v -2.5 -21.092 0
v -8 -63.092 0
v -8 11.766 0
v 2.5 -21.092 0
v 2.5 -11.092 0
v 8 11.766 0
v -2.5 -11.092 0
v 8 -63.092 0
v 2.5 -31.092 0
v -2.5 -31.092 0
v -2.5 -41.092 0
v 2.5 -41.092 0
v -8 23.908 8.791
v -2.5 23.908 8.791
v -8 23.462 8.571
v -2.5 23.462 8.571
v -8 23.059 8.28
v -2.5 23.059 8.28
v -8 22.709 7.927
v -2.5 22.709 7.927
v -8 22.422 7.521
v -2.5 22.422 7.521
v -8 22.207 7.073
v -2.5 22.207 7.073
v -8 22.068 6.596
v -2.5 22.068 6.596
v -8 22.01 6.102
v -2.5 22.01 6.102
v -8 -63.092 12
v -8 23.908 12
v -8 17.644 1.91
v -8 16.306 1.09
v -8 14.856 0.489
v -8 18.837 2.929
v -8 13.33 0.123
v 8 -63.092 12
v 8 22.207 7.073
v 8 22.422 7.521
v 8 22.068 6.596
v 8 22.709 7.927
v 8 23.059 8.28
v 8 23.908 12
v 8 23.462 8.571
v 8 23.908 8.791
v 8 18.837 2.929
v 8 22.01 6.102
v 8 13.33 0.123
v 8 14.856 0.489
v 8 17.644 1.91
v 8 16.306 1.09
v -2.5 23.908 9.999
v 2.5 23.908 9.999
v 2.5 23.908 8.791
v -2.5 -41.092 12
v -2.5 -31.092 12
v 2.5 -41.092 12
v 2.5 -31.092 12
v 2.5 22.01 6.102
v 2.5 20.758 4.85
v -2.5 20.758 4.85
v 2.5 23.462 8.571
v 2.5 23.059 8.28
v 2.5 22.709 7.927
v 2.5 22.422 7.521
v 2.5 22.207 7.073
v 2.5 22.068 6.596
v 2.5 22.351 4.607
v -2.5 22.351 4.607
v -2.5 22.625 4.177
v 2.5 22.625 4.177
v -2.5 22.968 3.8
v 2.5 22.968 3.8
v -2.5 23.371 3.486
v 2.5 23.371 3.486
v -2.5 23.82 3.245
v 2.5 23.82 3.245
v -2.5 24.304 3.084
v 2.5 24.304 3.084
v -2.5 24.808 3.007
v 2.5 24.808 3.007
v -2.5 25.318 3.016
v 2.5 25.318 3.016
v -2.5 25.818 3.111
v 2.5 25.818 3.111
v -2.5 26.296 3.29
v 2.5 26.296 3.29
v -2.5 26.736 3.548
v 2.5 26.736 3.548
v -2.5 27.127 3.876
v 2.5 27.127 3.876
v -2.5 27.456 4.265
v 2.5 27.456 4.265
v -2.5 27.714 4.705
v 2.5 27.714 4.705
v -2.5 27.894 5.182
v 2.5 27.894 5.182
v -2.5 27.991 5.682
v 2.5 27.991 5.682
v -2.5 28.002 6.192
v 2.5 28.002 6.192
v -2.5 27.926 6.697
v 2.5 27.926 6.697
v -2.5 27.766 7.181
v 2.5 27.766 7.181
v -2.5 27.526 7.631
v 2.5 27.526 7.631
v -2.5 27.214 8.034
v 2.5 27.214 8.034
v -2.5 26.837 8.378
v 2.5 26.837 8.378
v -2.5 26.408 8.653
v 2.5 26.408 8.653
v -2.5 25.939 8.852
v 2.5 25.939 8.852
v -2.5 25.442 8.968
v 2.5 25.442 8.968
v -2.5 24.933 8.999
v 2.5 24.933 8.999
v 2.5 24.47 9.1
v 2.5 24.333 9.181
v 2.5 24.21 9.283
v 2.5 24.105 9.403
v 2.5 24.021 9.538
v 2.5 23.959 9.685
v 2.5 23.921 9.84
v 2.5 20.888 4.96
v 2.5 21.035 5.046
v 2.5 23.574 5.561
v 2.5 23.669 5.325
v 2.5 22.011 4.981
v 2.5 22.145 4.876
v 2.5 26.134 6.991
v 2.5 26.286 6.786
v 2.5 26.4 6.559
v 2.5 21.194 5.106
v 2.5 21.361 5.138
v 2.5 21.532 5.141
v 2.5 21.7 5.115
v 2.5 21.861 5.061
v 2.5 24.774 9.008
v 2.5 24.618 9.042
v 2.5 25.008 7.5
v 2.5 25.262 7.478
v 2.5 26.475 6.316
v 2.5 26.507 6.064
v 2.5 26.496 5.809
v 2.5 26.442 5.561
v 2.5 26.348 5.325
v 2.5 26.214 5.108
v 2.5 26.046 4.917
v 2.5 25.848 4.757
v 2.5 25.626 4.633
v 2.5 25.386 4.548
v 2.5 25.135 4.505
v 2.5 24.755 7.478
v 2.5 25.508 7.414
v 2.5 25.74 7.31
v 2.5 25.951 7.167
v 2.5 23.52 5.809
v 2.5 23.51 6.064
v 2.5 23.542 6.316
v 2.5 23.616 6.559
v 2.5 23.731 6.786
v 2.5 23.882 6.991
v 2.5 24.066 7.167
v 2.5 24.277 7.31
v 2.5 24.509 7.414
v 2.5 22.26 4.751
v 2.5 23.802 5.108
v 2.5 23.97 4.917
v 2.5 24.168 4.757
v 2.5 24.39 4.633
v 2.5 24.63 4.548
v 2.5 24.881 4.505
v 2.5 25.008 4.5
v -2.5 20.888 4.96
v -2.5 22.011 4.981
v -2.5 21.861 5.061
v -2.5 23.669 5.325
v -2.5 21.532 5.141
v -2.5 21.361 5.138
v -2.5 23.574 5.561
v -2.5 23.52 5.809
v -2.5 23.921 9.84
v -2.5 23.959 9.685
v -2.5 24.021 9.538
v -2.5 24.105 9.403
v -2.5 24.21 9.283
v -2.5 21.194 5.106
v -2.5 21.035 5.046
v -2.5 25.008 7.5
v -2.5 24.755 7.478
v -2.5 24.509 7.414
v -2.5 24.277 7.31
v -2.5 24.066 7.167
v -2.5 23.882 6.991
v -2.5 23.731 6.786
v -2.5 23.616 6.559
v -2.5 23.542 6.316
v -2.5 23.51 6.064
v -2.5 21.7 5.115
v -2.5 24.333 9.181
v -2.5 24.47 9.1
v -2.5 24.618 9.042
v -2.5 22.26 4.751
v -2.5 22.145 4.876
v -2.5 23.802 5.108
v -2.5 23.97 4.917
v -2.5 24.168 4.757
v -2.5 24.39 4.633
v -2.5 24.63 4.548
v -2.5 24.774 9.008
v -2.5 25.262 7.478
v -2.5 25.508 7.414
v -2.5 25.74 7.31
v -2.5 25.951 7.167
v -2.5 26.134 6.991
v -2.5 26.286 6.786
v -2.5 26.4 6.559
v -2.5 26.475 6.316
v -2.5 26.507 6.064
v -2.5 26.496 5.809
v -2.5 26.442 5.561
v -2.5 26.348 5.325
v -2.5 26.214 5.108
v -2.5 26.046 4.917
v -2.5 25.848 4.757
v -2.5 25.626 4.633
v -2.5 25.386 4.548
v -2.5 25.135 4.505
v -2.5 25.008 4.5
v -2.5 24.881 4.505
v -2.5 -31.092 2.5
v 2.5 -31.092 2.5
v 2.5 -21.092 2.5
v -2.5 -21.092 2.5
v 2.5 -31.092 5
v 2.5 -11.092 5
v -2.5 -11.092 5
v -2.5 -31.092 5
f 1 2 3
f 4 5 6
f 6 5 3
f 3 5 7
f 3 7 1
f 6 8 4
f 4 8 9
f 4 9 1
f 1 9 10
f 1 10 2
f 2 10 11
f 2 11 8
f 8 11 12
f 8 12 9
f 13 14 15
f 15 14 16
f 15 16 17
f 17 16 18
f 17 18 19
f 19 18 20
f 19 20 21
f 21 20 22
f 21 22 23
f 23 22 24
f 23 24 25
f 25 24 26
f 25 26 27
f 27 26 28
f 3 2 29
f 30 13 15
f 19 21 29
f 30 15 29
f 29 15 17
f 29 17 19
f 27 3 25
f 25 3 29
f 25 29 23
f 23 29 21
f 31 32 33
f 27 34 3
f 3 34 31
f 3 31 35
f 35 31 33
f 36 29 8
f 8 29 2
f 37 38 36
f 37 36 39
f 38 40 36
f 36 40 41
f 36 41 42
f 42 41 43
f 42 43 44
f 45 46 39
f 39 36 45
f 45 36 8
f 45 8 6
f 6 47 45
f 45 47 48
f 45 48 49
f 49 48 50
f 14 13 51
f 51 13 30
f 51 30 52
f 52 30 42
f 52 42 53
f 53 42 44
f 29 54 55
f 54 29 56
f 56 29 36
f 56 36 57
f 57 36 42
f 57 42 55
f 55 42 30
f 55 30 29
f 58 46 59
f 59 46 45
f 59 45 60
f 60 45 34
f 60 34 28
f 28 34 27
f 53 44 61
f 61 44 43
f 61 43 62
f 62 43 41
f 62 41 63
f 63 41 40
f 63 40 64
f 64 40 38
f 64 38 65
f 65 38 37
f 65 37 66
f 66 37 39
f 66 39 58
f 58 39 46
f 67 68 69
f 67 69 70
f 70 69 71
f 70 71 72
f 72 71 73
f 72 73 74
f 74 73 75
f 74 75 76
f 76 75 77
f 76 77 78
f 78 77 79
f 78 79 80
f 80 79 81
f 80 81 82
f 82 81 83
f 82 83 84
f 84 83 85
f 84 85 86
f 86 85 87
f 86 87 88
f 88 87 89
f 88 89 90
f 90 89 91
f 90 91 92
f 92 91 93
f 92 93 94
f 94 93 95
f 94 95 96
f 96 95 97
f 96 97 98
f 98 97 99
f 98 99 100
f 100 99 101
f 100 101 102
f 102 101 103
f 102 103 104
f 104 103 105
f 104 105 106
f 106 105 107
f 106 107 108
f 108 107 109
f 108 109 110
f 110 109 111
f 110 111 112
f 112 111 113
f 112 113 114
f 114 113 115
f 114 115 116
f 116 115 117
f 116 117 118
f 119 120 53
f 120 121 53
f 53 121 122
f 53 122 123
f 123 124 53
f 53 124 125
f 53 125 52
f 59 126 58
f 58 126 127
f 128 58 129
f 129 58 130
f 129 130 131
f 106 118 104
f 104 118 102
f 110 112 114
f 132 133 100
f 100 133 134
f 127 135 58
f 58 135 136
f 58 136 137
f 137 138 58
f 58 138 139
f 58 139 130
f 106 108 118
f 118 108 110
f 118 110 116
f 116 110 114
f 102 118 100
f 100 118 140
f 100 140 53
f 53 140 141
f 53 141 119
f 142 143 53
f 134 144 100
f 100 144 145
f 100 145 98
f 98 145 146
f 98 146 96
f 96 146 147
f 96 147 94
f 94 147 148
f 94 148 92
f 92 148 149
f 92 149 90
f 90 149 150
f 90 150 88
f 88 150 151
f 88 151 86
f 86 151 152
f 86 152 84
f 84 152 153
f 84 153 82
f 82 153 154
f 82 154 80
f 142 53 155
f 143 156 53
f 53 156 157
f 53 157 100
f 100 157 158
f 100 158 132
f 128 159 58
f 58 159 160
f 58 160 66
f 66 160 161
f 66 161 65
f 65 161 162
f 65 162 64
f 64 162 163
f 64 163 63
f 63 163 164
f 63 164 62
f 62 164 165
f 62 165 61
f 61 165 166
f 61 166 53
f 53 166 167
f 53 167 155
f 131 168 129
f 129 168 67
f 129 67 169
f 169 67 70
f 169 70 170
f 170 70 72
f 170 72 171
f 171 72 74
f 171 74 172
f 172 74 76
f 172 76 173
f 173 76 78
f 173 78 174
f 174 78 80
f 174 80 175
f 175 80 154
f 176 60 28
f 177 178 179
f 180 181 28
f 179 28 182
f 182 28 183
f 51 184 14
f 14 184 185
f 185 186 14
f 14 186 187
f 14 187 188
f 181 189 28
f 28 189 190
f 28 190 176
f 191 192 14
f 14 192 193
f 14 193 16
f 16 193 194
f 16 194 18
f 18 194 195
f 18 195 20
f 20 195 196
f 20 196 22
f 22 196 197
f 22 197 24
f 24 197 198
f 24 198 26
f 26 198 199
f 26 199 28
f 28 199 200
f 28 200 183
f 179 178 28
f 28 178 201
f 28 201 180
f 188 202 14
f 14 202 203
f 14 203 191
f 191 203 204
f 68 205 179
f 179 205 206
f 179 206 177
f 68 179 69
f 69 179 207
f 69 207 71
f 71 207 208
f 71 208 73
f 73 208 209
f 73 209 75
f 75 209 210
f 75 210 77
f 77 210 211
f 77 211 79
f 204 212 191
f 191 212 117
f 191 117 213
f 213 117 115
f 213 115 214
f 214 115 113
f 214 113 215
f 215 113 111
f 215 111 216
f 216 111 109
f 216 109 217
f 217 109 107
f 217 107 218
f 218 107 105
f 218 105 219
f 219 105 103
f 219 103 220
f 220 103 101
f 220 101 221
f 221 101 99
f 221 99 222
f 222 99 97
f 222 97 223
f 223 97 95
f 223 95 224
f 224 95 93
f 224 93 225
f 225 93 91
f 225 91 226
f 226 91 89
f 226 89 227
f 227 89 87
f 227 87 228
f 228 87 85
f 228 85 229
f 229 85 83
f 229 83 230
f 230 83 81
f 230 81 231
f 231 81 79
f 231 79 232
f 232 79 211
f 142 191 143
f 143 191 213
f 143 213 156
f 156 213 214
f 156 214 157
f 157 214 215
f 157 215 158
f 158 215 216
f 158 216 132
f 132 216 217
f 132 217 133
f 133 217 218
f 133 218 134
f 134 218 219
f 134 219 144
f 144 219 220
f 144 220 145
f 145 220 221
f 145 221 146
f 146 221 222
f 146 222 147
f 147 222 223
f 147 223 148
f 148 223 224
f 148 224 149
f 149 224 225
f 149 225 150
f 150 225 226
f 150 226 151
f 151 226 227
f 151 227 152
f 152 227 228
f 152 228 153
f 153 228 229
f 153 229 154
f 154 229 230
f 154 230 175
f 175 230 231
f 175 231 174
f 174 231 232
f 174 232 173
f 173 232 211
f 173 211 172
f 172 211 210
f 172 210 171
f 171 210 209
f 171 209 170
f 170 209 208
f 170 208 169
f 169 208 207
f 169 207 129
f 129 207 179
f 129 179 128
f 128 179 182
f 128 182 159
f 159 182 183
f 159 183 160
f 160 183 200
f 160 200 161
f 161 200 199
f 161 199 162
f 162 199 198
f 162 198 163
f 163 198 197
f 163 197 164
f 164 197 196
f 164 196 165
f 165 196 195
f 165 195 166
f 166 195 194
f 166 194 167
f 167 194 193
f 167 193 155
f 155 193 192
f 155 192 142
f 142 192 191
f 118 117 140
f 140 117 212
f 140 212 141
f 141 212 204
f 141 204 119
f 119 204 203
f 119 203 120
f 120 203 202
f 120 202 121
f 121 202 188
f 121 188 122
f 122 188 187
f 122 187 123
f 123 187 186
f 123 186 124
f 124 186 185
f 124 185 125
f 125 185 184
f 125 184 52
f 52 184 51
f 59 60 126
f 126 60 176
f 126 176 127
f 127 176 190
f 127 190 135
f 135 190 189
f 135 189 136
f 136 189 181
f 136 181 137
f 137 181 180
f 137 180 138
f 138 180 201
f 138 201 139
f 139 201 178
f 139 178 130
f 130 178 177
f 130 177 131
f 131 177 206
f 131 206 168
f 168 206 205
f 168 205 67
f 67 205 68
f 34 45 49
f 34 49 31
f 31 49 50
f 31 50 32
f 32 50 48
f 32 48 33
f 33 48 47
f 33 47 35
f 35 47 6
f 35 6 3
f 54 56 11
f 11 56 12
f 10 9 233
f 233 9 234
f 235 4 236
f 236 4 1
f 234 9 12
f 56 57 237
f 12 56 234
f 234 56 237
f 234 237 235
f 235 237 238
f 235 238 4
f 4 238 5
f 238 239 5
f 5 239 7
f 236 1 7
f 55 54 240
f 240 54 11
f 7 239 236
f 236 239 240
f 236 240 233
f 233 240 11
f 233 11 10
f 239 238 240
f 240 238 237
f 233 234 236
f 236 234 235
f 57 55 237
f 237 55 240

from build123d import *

# Parameters (mm, degrees)
SKETCH1_W               = 16
SKETCH1_H               = 87
BOSS_EXTRUDE2_DEPTH     = 12
CUT_EXTRUDE1_DEPTH      = 65.719189191
CUT_EXTRUDE1_DEPTH_BACK = 65.719189191
CUT_EXTRUDE2_DEPTH      = 65.719189191
CUT_EXTRUDE2_DEPTH_BACK = 65.719189191
SKETCH4_R               = 3
SKETCH4_R_2             = 1.5
BOSS_EXTRUDE3_DEPTH     = 2.5
FILLET1_R               = 1
FILLET2_R               = 10
SKETCH5_W               = 5
SKETCH5_H               = 10
SKETCH5_W_2             = 2.5
CUT_EXTRUDE3_DEPTH      = 5
CUT_EXTRUDE4_REACH      = 62.834
SKETCH6_W               = 5
SKETCH6_H               = 2.5
SKETCH7_W               = 5
SKETCH7_H               = 10
CUT_EXTRUDE5_DEPTH      = 65.719189191


with BuildPart() as part:
    # Sketch1 → Boss-Extrude2 (new body)
    with BuildSketch(Plane.XY):
        with Locations((0, -19.591785912)):
            Rectangle(SKETCH1_W, SKETCH1_H)
    extrude(amount=BOSS_EXTRUDE2_DEPTH)

    # Sketch2 → Cut-Extrude1 (cut, two sides: drawn at the far end of the back side and taken through both)
    with BuildSketch(Plane(origin=(0, 0, 0), x_dir=(0, 0, -1), z_dir=(1, 0, 0)).offset(-CUT_EXTRUDE1_DEPTH_BACK)):
        Polygon((0, 15.908214088), (0, 23.908214088), (-8, 23.908214088), align=None)
    extrude(amount=CUT_EXTRUDE1_DEPTH + CUT_EXTRUDE1_DEPTH_BACK, mode=Mode.SUBTRACT)

    # Sketch3 → Cut-Extrude2 (cut, two sides: drawn at the far end of the back side and taken through both)
    with BuildSketch(Plane(origin=(0, 0, 0), x_dir=(0, 0, -1), z_dir=(1, 0, 0)).offset(-CUT_EXTRUDE2_DEPTH_BACK)):
        with BuildLine():
            ThreePointArc((-3, 25.008214088), (-6.559834153, 27.955515518), (-8.791057147, 23.908214088))
            Line((-8.791057147, 23.908214088), (-7.019803903, 23.908214088))
            ThreePointArc((-7.019803903, 23.908214088), (-6.600122548, 26.382933306), (-4.5, 25.008214088))
            ThreePointArc((-4.5, 25.008214088), (-4.625280782, 24.40809154), (-4.980196097, 23.908214088))
            Line((-4.980196097, 23.908214088), (-3.208942853, 23.908214088))
            ThreePointArc((-3.208942853, 23.908214088), (-3.05269857, 24.448379935), (-3, 25.008214088))
        make_face()
        with BuildLine():
            Line((-7.019803903, 23.908214088), (-8.791057147, 23.908214088))
            ThreePointArc((-8.791057147, 23.908214088), (-6, 22.008214088), (-3.208942853, 23.908214088))
            Line((-3.208942853, 23.908214088), (-4.980196097, 23.908214088))
            ThreePointArc((-4.980196097, 23.908214088), (-6, 23.508214088), (-7.019803903, 23.908214088))
        make_face()
    extrude(amount=CUT_EXTRUDE2_DEPTH + CUT_EXTRUDE2_DEPTH_BACK, mode=Mode.SUBTRACT)

    # Sketch4 → Boss-Extrude3 (add, symmetric)
    with BuildSketch(Plane(origin=(0, 0, 0), x_dir=(0, 0, -1), z_dir=(1, 0, 0))):
        with Locations((-6, 25.008214088)):
            Circle(SKETCH4_R)
        with Locations((-6, 25.008214088)):
            Circle(SKETCH4_R_2, mode=Mode.SUBTRACT)
    extrude(amount=BOSS_EXTRUDE3_DEPTH, both=True)

    # Fillet1
    fillet1_edges = [part.edges().sort_by_distance(p)[0] for p in [
        (0, 22.009939252, 6.101725164),
        (0, 23.908214088, 8.791057147),
    ]]
    fillet(fillet1_edges, radius=FILLET1_R)

    # Fillet2
    fillet2_edges = [part.edges().sort_by_distance(p)[0] for p in [
        (0, 15.908214088, 0),
    ]]
    fillet(fillet2_edges, radius=FILLET2_R)

    # Sketch5 → Cut-Extrude3 (cut)
    with BuildSketch(Plane(origin=(0, 0, 0), x_dir=(-1, 0, 0), z_dir=(0, 0, -1))):
        with Locations((0, -16.091785912)):
            Rectangle(SKETCH5_W, SKETCH5_H)
        with Locations((1.25, -36.091785912)):
            Rectangle(SKETCH5_W_2, SKETCH5_H)
        with Locations((-1.25, -36.091785912)):
            Rectangle(SKETCH5_W_2, SKETCH5_H)
    extrude(amount=-CUT_EXTRUDE3_DEPTH, mode=Mode.SUBTRACT)

    # Sketch6 → Cut-Extrude4 (cut, up to next)
    with BuildSketch(Plane.XZ.offset(31.091785912), mode=Mode.PRIVATE) as cut_extrude4_sk1:
        with Locations((0, 3.75)):
            Rectangle(SKETCH6_W, SKETCH6_H)
    cut_extrude4_tool1 = extrude(cut_extrude4_sk1.sketch, amount=-CUT_EXTRUDE4_REACH, mode=Mode.PRIVATE) & part.part
    add(cut_extrude4_tool1.solids().sort_by_distance((0, -31.091786, 3.75))[0], mode=Mode.SUBTRACT)

    # Sketch7 → Cut-Extrude5 (cut, through all)
    with BuildSketch(Plane(origin=(0, 0, 0), x_dir=(-1, 0, 0), z_dir=(0, 0, -1))):
        with Locations((0, -36.091785912)):
            Rectangle(SKETCH7_W, SKETCH7_H)
    extrude(amount=-CUT_EXTRUDE5_DEPTH, mode=Mode.SUBTRACT)


solid = part.part
